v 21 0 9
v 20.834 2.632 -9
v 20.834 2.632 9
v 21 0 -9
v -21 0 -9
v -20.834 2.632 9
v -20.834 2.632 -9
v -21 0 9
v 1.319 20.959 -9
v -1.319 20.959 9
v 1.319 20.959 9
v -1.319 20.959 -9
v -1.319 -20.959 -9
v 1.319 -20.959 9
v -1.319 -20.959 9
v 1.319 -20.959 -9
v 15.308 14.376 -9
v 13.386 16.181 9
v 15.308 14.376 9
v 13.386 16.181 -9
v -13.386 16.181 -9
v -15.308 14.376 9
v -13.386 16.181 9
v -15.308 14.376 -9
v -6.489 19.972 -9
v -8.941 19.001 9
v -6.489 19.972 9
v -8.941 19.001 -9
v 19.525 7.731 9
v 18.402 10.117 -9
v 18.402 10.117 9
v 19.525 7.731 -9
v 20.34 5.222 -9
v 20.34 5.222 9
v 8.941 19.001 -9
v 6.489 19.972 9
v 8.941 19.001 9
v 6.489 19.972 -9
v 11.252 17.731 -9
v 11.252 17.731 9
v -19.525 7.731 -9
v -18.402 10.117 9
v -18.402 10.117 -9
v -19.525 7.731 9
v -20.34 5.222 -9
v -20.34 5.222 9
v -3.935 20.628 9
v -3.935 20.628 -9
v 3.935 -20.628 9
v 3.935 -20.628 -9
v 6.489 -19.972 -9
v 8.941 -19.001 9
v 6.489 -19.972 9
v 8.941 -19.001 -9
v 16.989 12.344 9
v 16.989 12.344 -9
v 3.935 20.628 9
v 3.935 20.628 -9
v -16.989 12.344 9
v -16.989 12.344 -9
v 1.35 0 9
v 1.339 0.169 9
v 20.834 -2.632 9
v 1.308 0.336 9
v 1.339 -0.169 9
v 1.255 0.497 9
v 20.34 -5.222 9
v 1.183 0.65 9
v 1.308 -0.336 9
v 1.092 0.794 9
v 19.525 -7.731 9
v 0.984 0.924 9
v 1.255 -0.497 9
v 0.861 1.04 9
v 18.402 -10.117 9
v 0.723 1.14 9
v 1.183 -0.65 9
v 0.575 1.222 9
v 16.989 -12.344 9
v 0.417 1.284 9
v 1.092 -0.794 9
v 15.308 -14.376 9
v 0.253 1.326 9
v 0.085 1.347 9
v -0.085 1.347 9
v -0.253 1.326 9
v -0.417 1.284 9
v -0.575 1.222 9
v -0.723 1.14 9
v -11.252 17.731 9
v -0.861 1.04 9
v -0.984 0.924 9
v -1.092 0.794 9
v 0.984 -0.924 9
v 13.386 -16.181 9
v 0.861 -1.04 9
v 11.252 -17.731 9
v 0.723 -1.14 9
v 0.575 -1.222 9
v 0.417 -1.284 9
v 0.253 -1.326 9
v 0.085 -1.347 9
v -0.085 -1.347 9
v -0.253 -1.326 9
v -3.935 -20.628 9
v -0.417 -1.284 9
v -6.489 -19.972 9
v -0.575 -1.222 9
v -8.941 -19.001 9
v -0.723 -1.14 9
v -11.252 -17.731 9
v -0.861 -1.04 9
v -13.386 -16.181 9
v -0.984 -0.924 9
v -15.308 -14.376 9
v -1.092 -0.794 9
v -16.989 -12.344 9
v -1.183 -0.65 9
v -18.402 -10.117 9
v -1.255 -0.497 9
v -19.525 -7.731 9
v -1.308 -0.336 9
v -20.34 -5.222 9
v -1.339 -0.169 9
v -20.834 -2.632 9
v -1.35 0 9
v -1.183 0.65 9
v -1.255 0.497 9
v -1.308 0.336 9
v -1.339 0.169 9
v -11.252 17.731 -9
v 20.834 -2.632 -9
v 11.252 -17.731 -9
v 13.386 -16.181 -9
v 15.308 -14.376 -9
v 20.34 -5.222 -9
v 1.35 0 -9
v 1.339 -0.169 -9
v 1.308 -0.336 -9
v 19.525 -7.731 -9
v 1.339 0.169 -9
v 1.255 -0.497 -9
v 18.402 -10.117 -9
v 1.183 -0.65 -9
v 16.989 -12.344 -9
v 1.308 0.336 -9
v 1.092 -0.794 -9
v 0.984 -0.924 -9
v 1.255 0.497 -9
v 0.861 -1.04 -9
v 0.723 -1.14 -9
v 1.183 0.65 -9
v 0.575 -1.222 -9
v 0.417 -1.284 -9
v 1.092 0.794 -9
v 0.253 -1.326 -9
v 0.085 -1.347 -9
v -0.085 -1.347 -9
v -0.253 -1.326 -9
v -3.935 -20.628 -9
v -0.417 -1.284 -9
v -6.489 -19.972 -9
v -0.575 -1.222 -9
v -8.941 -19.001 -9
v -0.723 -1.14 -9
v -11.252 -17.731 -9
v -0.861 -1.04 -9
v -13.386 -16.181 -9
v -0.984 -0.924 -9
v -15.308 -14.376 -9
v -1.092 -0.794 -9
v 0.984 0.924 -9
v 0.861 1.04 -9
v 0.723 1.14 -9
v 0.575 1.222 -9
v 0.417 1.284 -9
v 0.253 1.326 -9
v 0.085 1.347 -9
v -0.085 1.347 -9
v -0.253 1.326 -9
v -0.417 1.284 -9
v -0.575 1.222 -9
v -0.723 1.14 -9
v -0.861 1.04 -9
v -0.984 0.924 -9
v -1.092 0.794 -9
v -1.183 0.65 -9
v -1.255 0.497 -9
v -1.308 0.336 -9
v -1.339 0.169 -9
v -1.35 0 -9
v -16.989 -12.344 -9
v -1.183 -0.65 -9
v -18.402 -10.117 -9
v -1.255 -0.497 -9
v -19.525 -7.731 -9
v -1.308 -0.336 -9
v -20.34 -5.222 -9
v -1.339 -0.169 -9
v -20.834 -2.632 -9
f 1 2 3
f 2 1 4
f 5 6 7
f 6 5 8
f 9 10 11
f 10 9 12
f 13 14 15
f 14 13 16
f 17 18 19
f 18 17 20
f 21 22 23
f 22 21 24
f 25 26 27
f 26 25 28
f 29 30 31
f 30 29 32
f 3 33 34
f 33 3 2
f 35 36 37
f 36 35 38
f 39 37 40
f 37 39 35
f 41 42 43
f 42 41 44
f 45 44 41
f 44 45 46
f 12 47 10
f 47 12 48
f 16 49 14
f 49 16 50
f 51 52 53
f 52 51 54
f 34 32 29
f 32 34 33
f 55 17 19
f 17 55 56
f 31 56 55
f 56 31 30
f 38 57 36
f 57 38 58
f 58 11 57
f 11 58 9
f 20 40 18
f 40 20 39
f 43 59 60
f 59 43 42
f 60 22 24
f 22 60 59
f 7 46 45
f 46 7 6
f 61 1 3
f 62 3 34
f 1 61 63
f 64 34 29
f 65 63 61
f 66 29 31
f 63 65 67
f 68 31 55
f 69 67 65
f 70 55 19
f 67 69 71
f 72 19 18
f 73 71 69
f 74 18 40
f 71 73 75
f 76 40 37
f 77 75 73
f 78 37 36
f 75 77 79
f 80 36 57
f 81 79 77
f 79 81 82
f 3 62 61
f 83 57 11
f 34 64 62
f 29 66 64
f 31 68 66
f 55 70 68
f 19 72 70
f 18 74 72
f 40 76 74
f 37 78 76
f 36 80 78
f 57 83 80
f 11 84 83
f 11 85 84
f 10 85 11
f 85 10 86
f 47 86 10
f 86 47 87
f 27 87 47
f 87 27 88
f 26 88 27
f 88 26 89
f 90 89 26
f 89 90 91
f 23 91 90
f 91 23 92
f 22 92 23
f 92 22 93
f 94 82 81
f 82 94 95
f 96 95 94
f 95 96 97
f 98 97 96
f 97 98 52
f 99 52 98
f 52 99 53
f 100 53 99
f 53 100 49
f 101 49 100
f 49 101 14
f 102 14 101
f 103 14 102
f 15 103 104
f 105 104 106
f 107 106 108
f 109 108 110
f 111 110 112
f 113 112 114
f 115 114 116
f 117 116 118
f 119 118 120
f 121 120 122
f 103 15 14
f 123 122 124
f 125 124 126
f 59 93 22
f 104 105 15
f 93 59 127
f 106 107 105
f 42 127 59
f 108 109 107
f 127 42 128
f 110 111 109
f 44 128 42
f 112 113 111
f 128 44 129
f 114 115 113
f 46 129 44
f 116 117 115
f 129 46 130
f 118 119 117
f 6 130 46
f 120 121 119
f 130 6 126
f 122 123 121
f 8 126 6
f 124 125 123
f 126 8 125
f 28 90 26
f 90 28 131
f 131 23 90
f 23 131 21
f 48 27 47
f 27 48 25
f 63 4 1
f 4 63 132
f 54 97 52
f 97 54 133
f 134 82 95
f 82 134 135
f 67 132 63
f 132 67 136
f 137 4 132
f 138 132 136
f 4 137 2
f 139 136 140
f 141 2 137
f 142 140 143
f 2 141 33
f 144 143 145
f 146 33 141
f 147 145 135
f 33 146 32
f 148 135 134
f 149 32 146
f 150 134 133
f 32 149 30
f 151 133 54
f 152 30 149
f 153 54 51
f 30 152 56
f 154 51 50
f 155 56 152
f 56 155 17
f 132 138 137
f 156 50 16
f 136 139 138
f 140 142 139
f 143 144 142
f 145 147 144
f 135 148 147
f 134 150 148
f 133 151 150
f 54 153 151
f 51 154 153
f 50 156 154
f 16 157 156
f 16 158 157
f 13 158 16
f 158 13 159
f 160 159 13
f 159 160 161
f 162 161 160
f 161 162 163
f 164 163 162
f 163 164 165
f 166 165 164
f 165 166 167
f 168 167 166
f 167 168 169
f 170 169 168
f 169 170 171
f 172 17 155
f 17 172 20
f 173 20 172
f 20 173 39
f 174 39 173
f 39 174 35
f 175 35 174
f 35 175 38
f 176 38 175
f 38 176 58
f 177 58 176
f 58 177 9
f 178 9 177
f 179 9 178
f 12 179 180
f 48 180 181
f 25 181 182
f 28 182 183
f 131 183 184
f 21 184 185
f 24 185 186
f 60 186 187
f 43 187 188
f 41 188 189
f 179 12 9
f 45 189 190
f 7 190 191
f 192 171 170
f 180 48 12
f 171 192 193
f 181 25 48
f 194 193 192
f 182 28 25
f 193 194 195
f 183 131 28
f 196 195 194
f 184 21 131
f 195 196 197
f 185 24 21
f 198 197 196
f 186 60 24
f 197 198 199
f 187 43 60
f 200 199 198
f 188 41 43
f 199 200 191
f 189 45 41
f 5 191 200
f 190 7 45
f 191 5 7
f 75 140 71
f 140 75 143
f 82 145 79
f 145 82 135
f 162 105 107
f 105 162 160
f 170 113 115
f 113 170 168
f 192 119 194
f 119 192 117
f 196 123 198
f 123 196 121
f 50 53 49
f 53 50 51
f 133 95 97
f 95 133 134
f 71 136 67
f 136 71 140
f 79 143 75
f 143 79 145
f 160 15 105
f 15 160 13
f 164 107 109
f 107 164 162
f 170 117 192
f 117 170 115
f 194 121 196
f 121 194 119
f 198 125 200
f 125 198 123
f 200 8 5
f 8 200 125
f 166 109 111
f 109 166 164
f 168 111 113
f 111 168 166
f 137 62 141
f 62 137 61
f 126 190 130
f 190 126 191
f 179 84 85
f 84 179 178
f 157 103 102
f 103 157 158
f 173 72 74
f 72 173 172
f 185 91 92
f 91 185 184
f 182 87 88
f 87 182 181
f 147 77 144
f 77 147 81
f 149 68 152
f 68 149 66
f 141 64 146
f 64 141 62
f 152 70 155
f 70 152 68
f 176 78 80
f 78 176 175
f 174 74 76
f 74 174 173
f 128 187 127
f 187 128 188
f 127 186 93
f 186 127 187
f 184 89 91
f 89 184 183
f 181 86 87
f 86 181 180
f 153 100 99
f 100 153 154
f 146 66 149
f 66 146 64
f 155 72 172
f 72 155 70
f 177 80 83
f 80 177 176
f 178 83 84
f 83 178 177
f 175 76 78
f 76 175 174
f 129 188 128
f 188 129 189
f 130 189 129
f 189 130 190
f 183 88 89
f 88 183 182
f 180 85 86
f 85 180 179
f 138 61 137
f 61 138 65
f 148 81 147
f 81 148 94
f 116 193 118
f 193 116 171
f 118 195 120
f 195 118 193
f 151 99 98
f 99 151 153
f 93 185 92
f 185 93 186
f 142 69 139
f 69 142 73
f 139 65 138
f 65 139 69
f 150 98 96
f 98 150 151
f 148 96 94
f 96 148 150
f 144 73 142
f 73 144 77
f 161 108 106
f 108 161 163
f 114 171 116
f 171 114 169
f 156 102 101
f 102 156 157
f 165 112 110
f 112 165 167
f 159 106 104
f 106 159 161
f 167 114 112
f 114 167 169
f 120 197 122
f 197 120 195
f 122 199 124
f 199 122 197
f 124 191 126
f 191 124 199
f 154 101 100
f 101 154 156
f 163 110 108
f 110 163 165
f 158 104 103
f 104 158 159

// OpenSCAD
$fn = 50;


difference() {
	union() {
		translate(v = [0, 0, -9.0000000000]) {
			cylinder(h = 18, r = 21.0000000000);
		}
	}
	union() {
		translate(v = [0, 0, -100.0000000000]) {
			cylinder(h = 200, r = 1.3500000000);
		}
	}
}
